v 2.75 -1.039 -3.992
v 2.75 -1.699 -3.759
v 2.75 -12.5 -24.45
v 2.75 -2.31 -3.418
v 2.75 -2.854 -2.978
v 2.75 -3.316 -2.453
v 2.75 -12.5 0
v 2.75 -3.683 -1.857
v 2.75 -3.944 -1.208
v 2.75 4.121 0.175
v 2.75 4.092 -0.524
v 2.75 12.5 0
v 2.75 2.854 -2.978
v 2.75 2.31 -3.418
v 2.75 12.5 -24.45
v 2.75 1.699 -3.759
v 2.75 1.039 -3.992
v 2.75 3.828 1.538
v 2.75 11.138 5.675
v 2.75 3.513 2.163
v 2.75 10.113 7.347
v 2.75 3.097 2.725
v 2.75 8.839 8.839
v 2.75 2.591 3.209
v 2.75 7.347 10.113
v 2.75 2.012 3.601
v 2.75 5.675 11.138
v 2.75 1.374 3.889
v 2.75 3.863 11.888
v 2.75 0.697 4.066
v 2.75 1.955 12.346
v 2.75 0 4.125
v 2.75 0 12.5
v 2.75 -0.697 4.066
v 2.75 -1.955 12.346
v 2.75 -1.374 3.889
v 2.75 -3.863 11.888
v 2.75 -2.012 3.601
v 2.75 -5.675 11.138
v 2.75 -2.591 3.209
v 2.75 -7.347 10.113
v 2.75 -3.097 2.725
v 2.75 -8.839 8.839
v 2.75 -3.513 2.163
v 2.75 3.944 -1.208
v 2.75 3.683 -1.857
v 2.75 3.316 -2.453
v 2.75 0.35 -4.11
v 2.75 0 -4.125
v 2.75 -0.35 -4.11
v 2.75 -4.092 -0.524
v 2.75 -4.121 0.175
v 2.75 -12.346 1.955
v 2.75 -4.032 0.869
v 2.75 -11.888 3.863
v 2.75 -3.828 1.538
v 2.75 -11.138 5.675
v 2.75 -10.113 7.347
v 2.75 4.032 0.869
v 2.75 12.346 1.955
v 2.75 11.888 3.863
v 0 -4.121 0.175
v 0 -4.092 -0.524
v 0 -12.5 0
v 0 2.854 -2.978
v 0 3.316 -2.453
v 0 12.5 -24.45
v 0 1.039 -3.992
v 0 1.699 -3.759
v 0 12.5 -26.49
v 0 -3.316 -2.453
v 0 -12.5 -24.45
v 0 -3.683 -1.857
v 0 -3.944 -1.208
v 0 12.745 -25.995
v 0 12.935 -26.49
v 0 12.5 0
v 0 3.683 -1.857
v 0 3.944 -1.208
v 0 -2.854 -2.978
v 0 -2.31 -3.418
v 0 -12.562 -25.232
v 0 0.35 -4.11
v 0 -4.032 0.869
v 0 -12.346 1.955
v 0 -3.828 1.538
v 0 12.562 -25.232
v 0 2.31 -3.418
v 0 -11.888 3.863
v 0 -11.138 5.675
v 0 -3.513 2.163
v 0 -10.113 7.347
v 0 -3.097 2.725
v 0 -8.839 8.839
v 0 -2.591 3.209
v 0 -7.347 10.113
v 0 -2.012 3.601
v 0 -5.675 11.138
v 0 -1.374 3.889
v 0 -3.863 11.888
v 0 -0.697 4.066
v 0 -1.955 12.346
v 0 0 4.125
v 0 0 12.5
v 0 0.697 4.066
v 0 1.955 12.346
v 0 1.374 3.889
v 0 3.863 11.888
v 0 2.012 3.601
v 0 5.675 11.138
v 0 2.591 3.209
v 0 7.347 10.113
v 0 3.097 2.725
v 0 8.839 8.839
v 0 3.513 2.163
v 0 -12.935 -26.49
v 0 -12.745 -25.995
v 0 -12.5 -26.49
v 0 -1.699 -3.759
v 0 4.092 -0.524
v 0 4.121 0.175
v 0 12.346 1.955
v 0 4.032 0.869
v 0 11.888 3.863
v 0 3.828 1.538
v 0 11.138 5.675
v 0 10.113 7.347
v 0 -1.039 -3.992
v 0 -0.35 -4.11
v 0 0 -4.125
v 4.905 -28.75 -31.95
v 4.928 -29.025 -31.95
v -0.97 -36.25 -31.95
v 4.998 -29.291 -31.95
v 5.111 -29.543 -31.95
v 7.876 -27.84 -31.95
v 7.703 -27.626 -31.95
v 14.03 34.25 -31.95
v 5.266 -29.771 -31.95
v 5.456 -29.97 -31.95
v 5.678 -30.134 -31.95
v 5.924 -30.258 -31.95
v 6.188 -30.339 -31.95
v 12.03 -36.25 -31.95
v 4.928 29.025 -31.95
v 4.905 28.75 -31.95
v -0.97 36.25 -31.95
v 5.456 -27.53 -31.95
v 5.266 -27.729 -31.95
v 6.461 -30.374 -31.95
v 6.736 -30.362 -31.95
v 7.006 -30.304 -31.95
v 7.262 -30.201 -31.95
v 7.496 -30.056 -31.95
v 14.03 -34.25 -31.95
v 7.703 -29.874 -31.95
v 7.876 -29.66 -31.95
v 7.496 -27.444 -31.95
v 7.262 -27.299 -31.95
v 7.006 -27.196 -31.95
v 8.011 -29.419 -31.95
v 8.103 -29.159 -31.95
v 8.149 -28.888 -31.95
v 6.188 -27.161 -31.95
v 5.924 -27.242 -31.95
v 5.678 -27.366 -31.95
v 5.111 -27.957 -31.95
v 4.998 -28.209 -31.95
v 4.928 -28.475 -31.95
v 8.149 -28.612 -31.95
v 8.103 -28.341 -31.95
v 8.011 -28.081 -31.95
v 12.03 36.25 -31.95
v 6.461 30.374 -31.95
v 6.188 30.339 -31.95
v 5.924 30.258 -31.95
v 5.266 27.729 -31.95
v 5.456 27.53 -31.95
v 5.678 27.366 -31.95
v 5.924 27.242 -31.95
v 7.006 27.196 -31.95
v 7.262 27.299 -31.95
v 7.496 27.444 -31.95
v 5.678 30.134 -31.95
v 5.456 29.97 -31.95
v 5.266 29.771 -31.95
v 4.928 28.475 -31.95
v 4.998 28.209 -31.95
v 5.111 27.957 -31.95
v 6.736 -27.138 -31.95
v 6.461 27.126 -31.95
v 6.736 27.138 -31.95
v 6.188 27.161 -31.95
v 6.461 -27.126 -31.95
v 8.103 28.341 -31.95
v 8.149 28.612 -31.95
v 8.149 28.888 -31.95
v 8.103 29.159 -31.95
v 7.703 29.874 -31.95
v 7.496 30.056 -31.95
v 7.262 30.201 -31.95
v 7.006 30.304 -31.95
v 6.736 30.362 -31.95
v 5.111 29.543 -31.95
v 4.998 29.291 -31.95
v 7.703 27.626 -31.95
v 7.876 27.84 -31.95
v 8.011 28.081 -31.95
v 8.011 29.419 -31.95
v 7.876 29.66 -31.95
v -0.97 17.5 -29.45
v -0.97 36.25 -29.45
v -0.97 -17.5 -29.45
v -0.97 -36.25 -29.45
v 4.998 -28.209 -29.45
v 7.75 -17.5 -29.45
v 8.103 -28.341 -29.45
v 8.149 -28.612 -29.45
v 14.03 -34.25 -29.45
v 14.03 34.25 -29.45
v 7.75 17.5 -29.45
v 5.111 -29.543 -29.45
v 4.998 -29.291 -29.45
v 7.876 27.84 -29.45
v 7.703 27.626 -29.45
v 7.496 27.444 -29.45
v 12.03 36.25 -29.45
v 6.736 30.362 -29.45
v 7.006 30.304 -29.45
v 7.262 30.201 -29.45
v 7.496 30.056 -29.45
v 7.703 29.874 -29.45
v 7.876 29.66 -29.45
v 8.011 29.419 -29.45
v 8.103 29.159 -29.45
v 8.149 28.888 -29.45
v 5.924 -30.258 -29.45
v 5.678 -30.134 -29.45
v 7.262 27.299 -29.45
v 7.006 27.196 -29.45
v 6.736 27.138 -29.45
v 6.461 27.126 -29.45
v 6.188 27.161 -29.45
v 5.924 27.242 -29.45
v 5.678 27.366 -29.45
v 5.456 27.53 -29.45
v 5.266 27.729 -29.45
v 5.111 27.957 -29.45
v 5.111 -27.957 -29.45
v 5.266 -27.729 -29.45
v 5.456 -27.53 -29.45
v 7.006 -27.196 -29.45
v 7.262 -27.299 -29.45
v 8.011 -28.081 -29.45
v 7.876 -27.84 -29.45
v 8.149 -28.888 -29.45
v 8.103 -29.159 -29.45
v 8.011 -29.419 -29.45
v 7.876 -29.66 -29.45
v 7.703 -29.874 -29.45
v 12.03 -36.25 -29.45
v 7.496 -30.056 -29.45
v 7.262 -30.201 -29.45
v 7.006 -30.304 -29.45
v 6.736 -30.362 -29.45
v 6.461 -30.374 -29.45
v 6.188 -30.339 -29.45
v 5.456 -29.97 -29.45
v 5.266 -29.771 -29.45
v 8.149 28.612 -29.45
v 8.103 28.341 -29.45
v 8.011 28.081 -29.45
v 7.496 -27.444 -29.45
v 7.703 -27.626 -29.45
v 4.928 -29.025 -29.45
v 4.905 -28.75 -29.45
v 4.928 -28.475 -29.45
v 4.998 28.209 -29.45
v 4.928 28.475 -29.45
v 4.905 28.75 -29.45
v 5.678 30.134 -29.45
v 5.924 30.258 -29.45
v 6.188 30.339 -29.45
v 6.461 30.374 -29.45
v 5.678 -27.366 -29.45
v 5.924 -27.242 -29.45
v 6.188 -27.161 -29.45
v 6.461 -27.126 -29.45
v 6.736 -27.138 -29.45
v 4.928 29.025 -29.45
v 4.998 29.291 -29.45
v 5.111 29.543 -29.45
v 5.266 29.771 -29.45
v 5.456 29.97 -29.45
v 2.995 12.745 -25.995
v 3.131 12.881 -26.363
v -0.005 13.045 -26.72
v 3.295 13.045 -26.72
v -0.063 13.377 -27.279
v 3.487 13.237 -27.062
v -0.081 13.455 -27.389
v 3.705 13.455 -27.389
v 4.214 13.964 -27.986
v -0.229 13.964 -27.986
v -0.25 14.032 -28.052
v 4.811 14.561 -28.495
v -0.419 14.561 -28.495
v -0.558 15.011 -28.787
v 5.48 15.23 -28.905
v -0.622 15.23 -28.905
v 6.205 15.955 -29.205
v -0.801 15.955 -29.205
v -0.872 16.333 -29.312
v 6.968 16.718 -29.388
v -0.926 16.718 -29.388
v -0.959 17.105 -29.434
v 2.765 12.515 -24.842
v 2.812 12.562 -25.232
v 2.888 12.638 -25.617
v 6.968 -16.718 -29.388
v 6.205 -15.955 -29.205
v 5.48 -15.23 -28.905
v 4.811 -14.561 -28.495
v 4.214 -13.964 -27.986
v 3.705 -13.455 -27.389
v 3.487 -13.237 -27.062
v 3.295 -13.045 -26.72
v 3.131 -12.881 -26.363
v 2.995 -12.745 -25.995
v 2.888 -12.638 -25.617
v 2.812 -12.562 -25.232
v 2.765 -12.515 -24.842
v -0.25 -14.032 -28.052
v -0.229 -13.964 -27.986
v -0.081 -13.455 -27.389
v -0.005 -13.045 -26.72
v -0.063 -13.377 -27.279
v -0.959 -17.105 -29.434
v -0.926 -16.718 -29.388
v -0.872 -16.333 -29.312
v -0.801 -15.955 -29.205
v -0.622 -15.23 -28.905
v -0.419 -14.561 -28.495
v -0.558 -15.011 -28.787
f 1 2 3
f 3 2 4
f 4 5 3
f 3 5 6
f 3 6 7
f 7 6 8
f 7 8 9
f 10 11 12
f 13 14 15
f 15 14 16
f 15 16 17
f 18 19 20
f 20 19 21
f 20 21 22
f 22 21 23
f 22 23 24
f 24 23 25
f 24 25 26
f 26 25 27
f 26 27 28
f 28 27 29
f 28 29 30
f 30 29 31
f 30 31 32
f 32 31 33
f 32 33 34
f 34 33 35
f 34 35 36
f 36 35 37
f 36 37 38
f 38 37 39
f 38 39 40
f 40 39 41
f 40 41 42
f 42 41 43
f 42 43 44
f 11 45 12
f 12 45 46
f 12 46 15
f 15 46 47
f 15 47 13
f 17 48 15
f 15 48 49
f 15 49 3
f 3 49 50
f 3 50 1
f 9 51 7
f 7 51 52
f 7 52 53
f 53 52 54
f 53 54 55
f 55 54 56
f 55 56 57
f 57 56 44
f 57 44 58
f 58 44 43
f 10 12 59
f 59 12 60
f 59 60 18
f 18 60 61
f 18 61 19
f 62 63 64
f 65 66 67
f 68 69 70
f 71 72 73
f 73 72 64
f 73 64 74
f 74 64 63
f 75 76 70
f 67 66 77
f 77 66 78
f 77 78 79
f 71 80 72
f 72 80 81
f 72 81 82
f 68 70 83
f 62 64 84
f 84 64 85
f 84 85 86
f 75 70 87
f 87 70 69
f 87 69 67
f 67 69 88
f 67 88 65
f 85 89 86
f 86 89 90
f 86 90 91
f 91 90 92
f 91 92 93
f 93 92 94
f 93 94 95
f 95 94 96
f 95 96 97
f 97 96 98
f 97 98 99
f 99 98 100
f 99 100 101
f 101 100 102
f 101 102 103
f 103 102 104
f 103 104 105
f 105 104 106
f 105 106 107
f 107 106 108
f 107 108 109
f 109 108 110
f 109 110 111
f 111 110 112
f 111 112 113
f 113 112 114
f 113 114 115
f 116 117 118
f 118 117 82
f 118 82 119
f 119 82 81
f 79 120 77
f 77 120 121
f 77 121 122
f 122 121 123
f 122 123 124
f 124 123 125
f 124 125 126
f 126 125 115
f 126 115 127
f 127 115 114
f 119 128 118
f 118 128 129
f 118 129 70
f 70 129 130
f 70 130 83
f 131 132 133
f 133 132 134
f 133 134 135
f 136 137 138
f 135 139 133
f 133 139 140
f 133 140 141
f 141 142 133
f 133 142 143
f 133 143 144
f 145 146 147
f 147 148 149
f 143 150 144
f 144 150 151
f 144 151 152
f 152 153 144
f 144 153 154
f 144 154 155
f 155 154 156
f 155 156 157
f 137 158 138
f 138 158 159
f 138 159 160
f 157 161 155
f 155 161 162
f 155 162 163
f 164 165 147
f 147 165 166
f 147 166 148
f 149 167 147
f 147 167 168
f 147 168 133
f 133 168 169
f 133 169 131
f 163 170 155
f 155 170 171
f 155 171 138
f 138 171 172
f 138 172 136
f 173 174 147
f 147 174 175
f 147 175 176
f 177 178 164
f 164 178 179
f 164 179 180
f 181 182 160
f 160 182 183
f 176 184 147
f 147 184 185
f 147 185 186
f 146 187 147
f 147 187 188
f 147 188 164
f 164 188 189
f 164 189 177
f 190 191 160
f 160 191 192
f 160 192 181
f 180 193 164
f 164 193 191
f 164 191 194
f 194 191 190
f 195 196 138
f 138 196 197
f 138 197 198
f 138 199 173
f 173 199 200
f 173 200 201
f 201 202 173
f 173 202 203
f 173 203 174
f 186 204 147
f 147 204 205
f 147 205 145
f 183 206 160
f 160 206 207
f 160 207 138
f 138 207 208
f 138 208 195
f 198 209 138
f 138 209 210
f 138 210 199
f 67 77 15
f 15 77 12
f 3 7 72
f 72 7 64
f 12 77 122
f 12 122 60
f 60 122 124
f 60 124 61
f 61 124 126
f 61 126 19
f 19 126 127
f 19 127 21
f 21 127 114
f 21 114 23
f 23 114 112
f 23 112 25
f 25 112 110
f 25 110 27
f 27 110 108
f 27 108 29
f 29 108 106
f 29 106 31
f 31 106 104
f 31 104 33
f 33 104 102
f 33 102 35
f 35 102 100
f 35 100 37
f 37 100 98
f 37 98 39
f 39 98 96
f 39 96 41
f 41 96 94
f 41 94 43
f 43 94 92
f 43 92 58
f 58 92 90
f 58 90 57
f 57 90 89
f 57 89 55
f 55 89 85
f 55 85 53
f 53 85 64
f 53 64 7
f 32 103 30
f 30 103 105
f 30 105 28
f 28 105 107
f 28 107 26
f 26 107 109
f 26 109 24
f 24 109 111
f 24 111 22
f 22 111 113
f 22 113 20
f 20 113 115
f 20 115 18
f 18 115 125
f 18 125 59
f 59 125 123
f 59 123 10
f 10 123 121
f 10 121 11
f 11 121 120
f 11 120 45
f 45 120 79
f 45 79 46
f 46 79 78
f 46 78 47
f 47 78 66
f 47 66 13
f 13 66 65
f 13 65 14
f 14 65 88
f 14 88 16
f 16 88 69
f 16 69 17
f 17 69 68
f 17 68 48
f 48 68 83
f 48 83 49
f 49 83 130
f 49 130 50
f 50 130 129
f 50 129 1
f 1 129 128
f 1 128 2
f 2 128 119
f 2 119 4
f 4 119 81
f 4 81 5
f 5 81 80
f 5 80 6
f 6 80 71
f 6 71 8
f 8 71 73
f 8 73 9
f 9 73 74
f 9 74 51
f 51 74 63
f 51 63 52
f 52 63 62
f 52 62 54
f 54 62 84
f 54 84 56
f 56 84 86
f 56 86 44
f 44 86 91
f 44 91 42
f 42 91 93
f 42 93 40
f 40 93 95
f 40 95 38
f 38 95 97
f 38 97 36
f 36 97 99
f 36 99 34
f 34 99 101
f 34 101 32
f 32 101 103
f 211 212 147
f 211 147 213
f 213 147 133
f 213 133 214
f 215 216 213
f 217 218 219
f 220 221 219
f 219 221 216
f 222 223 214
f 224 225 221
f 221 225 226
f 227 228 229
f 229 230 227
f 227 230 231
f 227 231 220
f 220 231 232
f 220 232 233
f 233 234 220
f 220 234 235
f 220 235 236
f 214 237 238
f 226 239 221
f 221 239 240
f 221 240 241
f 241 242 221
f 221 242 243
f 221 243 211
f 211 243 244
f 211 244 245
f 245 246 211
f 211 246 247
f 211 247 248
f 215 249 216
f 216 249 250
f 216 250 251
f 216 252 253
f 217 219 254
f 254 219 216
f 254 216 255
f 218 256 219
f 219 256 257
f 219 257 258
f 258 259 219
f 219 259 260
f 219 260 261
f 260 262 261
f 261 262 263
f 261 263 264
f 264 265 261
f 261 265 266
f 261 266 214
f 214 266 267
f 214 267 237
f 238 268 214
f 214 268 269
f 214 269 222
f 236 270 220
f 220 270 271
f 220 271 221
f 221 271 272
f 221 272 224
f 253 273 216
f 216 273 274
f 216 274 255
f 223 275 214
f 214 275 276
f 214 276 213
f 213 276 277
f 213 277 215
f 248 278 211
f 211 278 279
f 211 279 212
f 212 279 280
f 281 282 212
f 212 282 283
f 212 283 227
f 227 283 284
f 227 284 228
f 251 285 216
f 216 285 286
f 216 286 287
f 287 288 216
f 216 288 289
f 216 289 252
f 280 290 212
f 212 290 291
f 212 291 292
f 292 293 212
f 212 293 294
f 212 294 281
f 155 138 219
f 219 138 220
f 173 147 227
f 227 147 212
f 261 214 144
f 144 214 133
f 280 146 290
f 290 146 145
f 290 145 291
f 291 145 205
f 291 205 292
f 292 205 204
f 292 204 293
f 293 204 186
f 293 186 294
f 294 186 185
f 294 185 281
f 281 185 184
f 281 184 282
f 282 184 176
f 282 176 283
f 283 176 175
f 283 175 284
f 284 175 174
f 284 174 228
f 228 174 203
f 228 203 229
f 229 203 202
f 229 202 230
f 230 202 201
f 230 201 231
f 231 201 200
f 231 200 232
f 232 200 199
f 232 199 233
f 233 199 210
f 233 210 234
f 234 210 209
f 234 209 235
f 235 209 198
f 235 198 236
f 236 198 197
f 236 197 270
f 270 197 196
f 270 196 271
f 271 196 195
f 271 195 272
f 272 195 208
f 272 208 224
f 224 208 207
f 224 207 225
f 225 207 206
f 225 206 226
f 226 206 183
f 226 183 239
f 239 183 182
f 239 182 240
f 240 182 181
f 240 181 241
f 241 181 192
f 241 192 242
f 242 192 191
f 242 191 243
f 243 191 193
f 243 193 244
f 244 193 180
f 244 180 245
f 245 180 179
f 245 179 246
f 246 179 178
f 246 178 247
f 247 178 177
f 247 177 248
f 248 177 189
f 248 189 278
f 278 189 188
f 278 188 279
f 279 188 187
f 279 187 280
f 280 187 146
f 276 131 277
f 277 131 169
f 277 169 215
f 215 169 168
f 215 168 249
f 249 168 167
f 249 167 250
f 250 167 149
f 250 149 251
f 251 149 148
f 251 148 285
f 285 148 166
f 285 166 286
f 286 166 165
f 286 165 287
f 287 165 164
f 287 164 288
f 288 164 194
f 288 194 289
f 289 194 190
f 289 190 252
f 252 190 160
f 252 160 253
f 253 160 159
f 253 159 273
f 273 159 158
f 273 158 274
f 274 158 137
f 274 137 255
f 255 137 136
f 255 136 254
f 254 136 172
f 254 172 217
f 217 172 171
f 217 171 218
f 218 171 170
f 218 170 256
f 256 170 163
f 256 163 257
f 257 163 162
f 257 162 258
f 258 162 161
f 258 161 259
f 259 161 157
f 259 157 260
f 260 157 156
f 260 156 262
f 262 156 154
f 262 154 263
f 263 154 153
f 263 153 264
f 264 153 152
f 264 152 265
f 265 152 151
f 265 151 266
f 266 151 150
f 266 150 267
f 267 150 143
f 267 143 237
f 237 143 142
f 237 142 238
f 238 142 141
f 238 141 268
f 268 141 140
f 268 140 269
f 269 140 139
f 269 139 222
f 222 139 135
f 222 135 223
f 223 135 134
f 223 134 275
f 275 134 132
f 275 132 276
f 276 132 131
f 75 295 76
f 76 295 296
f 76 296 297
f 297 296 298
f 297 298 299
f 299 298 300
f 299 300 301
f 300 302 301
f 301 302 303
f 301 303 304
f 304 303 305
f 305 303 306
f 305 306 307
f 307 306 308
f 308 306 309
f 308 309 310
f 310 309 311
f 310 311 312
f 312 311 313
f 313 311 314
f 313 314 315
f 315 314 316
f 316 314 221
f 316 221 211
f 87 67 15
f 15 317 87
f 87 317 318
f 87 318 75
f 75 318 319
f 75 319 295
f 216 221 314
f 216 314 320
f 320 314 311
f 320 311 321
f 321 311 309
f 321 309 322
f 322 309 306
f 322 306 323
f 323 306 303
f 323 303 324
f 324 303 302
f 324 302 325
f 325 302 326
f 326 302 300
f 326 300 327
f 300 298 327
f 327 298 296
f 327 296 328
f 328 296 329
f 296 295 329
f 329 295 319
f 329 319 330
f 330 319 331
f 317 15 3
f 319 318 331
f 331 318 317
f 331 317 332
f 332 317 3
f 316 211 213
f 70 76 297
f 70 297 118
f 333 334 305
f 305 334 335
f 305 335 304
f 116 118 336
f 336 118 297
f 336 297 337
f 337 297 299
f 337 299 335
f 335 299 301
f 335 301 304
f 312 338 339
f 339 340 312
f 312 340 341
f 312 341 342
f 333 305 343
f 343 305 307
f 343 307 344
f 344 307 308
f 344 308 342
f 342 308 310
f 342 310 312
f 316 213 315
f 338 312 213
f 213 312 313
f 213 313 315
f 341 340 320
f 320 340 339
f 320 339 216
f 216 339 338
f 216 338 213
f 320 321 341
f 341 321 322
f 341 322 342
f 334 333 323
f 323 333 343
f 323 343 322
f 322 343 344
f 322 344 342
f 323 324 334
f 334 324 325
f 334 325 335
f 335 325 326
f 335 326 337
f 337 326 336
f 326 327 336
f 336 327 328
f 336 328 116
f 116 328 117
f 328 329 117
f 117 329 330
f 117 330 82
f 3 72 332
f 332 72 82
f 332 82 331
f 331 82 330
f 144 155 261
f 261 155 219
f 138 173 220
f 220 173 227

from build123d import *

# Parameters (mm, degrees)
SKETCH1_R               = 4.125
BOSS_EXTRUDE1_DEPTH     = 2.75
BOSS_EXTRUDE4_DEPTH     = 2.5
CUT_EXTRUDE2_REACH      = 80.314
SKETCH7_W               = 7
SKETCH7_H               = 16.5
SKETCH7_W_2             = 16
SKETCH7_H_2             = 8
CUT_EXTRUDE3_REACH      = 82.041
SKETCH9_W               = 2.75
SKETCH9_H               = 22.388822383
SKETCH8_W               = 2.75
SKETCH8_H               = 27.825
BOSS_EXTRUDE5_DEPTH     = 12.5
FILLET2_R               = 1
FILLET3_R               = 4
CUT_EXTRUDE4_DEPTH      = 74.103052287
CUT_EXTRUDE4_DEPTH_BACK = 74.103052287
SKETCH10_W              = 78.235731334
SKETCH10_H              = 6.290045588
SKETCH11_W              = 15
SKETCH11_H              = 2.5
BOSS_EXTRUDE6_DEPTH     = 12.5
BOSS_EXTRUDE7_DEPTH     = 2.5
SKETCH14_R              = 1.625
CUT_EXTRUDE5_DEPTH      = 2.5
FILLET4_R               = 5


with BuildPart() as part:
    # Sketch1 → Boss-Extrude1 (new body)
    with BuildSketch(Plane(origin=(0, 0, 0), x_dir=(0, 0, -1), z_dir=(1, 0, 0))):
        with BuildLine():
            Line((0, 12.5), (34.45, 12.5))
            Line((34.45, 12.5), (34.45, -12.5))
            Line((34.45, -12.5), (0, -12.5))
            ThreePointArc((0, -12.5), (-12.5, 0), (0, 12.5))
        make_face()
        Circle(SKETCH1_R, mode=Mode.SUBTRACT)
    extrude(amount=BOSS_EXTRUDE1_DEPTH)

    # Sketch6 → Boss-Extrude4 (add)
    with BuildSketch(Plane(origin=(0, 0, -34.45), x_dir=(-1, 0, 0), z_dir=(0, 0, -1))):
        Polygon((-8.812505246, 36.25), (53.321583376, 36.25), (53.321583376, -36.25), (6.25, -36.25), (-19.178416624, -36.25), (-19.178416624, 36.25), align=None)
    extrude(amount=-BOSS_EXTRUDE4_DEPTH)

    # Sketch7 → Cut-Extrude2 (cut, up to next)
    with BuildSketch(Plane.XY.offset(-31.95), mode=Mode.PRIVATE) as cut_extrude2_sk1:
        with Locations((-1.711858899, -11.632438111)):
            Rectangle(SKETCH7_W, SKETCH7_H)
    cut_extrude2_tool1 = extrude(cut_extrude2_sk1.sketch, amount=-CUT_EXTRUDE2_REACH, mode=Mode.PRIVATE) & part.part
    # Sketch7 → Cut-Extrude2 (cut, up to next)
    with BuildSketch(Plane.XY.offset(-31.95), mode=Mode.PRIVATE) as cut_extrude2_sk2:
        with Locations((-16.5, 0)):
            Rectangle(SKETCH7_W_2, SKETCH7_H_2)
    cut_extrude2_tool2 = extrude(cut_extrude2_sk2.sketch, amount=-CUT_EXTRUDE2_REACH, mode=Mode.PRIVATE) & part.part
    add(cut_extrude2_tool1.solids().sort_by_distance((-1.711859, -11.632438, -31.95))[0], mode=Mode.SUBTRACT)
    add(cut_extrude2_tool2.solids().sort_by_distance((-16.5, 0, -31.95))[0], mode=Mode.SUBTRACT)

    # Sketch9 → Cut-Extrude3 (cut, up to next)
    with BuildSketch(Plane.XZ.offset(12.5), mode=Mode.PRIVATE) as cut_extrude3_sk1:
        with Locations((1.375, -20.755588809)):
            Rectangle(SKETCH9_W, SKETCH9_H)
    cut_extrude3_tool1 = extrude(cut_extrude3_sk1.sketch, amount=-CUT_EXTRUDE3_REACH, mode=Mode.PRIVATE) & part.part
    add(cut_extrude3_tool1.solids().sort_by_distance((1.375, -12.5, -20.755589))[0], mode=Mode.SUBTRACT)


with BuildPart() as cut_extrude3_piece_1:
    # of the separate pieces the step leaves, piece 1, a body of its own (cut_extrude3_pieces)
    add(part.part.solids().sort_by_distance((-53.321583376, 36.25, -31.95))[0])



with BuildPart() as cut_extrude3_piece_2:
    # of the separate pieces the step leaves, piece 2, a body of its own (cut_extrude3_pieces)
    add(part.part.solids().sort_by_distance((0, 12.5, 0))[0])


with BuildPart() as cut_extrude3_piece_1_1:
    add(cut_extrude3_piece_1.part)

    add(cut_extrude3_piece_2.part)  # Boss-Extrude5 merges Cut-Extrude3 piece 2
    # Sketch8 → Boss-Extrude5 (add, symmetric)
    with BuildSketch(Plane(origin=(0, 0, 0), x_dir=(1, 0, 0), z_dir=(0, 1, 0))):
        with Locations((1.375, 18.0375)):
            Rectangle(SKETCH8_W, SKETCH8_H)
    extrude(amount=BOSS_EXTRUDE5_DEPTH, both=True)

    # Fillet2
    fillet2_edges = [cut_extrude3_piece_1_1.edges().sort_by_distance(p)[0] for p in [
        (-8.5, 4, -33.2),
        (-8.5, -4, -33.2),
        (-24.5, -4, -33.2),
        (-24.5, 4, -33.2),
        (-5.211858899, -19.882438111, -33.2),
        (-5.211858899, -3.382438111, -33.2),
        (1.788141101, -3.382438111, -33.2),
        (1.788141101, -19.882438111, -33.2),
    ]]
    fillet(fillet2_edges, radius=FILLET2_R)

    # Fillet3
    fillet3_edges = [cut_extrude3_piece_1_1.edges().sort_by_distance(p)[0] for p in [
        (19.178416624, 36.25, -33.2),
        (-53.321583376, 36.25, -33.2),
        (-53.321583376, -36.25, -33.2),
        (19.178416624, -36.25, -33.2),
    ]]
    fillet(fillet3_edges, radius=FILLET3_R)

    # Sketch10 → Cut-Extrude4 (cut, two sides: drawn at the far end of the back side and taken through both)
    with BuildSketch(Plane(origin=(0, 0, 0), x_dir=(1, 0, 0), z_dir=(0, 1, 0)).offset(-CUT_EXTRUDE4_DEPTH_BACK)):
        with Locations((-17.391929865, 35.095022794)):
            Rectangle(SKETCH10_W, SKETCH10_H)
    extrude(amount=CUT_EXTRUDE4_DEPTH + CUT_EXTRUDE4_DEPTH_BACK, mode=Mode.SUBTRACT)

    # Sketch11 → Boss-Extrude6 (add, symmetric)
    with BuildSketch(Plane(origin=(0, 0, 0), x_dir=(1, 0, 0), z_dir=(0, 1, 0))):
        with Locations((6.53, 30.7)):
            Rectangle(SKETCH11_W, SKETCH11_H)
    boss_extrude6 = extrude(amount=BOSS_EXTRUDE6_DEPTH, both=True)

    # Sketch13 → Boss-Extrude7 (add)
    with BuildSketch(Plane(origin=(0, 0, -31.95), x_dir=(-1, 0, 0), z_dir=(0, 0, -1))):
        with BuildLine():
            Line((-14.03, 12.5), (0.97, 12.5))
            Line((0.97, 12.5), (0.97, 36.25))
            Line((0.97, 36.25), (-10.03, 36.25))
            ThreePointArc((-10.03, 36.25), (-12.858427125, 35.078427125), (-14.03, 32.25))
            Line((-14.03, 32.25), (-14.03, 12.5))
        make_face()
    boss_extrude7 = extrude(amount=-BOSS_EXTRUDE7_DEPTH)

    # Mirror1: Boss-Extrude6, Boss-Extrude7 across plane
    add(boss_extrude6.mirror(Plane.ZX))
    add(boss_extrude7.mirror(Plane.ZX))

    # Sketch14 → Cut-Extrude5 (cut)
    with BuildSketch(Plane(origin=(0, 0, -31.95), x_dir=(-1, 0, 0), z_dir=(0, 0, -1))):
        with Locations((-6.53, 28.75)):
            Circle(SKETCH14_R)
    cut_extrude5 = extrude(amount=-CUT_EXTRUDE5_DEPTH, mode=Mode.SUBTRACT)

    # Mirror2: Cut-Extrude5 across plane
    add(cut_extrude5.mirror(Plane.ZX), mode=Mode.SUBTRACT)

    # Fillet4
    # the kernel refuses this fillet: 5 mm, written as the material it adds along each edge
    with BuildSketch(Plane(origin=(2.75, -12.5, -29.45), x_dir=(1, 0, 0), z_dir=(0, 1, 0))) as fillet4_piece_1:
        with BuildLine():
            CenterArc((FILLET4_R, -FILLET4_R), FILLET4_R, 90, 90)
            Line((0, -FILLET4_R), (-FILLET4_R * 0.02, -FILLET4_R))
            Line((-FILLET4_R * 0.02, -FILLET4_R), (-FILLET4_R * 0.02, FILLET4_R * 0.02))
            Line((-FILLET4_R * 0.02, FILLET4_R * 0.02), (FILLET4_R, FILLET4_R * 0.02))
            Line((FILLET4_R, FILLET4_R * 0.02), (FILLET4_R, 0))
        make_face()
    extrude(amount=25)
    with BuildSketch(Plane(origin=(0, -12.5, -29.45), x_dir=(-1, 0, 0), z_dir=(0, 1, 0))) as fillet4_piece_2:
        with BuildLine():
            CenterArc((5, 2.959577673), FILLET4_R, 180, 36.293058493)
            Line((0, 2.959577673), (-0.1, 2.959577673))
            Line((-0.1, 2.959577673), (-0.1, 0))
            Line((-0.1, 0), (0, -0.1))
            ThreePointArc((0, -0.1), (0.485, -0.1), (0.8894, -0.059191553))
            Line((0.8894, -0.059191553), (0.97, 0))
        make_face()
    extrude(amount=25)
    with BuildSketch(Plane(origin=(2.75, 12.5, -29.45), x_dir=(0, 0, 1), z_dir=(-1, 0, 0)), Plane(origin=(2.75, -12.5, -29.45), x_dir=(0, -1, 0), z_dir=(-1, 0, 0))) as fillet4_piece_3:
        with BuildLine():
            CenterArc((FILLET4_R, FILLET4_R), FILLET4_R, 180, 90)
            Line((0, FILLET4_R), (-FILLET4_R * 0.02, FILLET4_R))
            Line((-FILLET4_R * 0.02, FILLET4_R), (-FILLET4_R * 0.02, -FILLET4_R * 0.02))
            Line((-FILLET4_R * 0.02, -FILLET4_R * 0.02), (FILLET4_R, -FILLET4_R * 0.02))
            Line((FILLET4_R, -FILLET4_R * 0.02), (FILLET4_R, 0))
        make_face()
    extrude(amount=2.75)
    with BuildSketch(Plane(origin=(2.75, -25, -29.45), x_dir=(1, 0, 0), z_dir=(0, 1, 0))) as fillet4_piece_4a_section:
        with BuildLine():
            CenterArc((FILLET4_R, -FILLET4_R), FILLET4_R, 90, 90)
            Line((0, -FILLET4_R), (-FILLET4_R * 0.02, -FILLET4_R))
            Line((-FILLET4_R * 0.02, -FILLET4_R), (-FILLET4_R * 0.02, FILLET4_R * 0.02))
            Line((-FILLET4_R * 0.02, FILLET4_R * 0.02), (FILLET4_R, FILLET4_R * 0.02))
            Line((FILLET4_R, FILLET4_R * 0.02), (FILLET4_R, 0))
        make_face()
    fillet4_piece_4a = extrude(amount=37.5, mode=Mode.PRIVATE)
    fillet4_piece_4a = split(fillet4_piece_4a, bisect_by=Plane(origin=(3.881975571, -12.5, -28.318024429), z_dir=(0, -1, 0)), keep=Keep.TOP, mode=Mode.PRIVATE)
    with BuildSketch(Plane(origin=(15.25, -12.5, -29.45), x_dir=(0, -1, 0), z_dir=(-1, 0, 0))) as fillet4_piece_4b_section:
        with BuildLine():
            CenterArc((FILLET4_R, FILLET4_R), FILLET4_R, 180, 90)
            Line((0, FILLET4_R), (-FILLET4_R * 0.02, FILLET4_R))
            Line((-FILLET4_R * 0.02, FILLET4_R), (-FILLET4_R * 0.02, -FILLET4_R * 0.02))
            Line((-FILLET4_R * 0.02, -FILLET4_R * 0.02), (FILLET4_R, -FILLET4_R * 0.02))
            Line((FILLET4_R, -FILLET4_R * 0.02), (FILLET4_R, 0))
        make_face()
    fillet4_piece_4b = extrude(amount=15.25, mode=Mode.PRIVATE)
    fillet4_piece_4b = split(fillet4_piece_4b, bisect_by=Plane(origin=(14.03, -13.631975571, -28.318024429), z_dir=(-1, 0, 0)), keep=Keep.TOP, mode=Mode.PRIVATE)
    fillet4_piece_4b = split(fillet4_piece_4b, bisect_by=Plane(origin=(2.75, -13.631975571, -28.318024429), z_dir=(1, 0, 0)), keep=Keep.TOP, mode=Mode.PRIVATE)
    fillet4_piece_4 = fillet4_piece_4a & fillet4_piece_4b
    add(fillet4_piece_4)
    with BuildSketch(Plane(origin=(15.25, 12.5, -29.45), x_dir=(0, 0, 1), z_dir=(-1, 0, 0))) as fillet4_piece_5a_section:
        with BuildLine():
            CenterArc((FILLET4_R, FILLET4_R), FILLET4_R, 180, 90)
            Line((0, FILLET4_R), (-FILLET4_R * 0.02, FILLET4_R))
            Line((-FILLET4_R * 0.02, FILLET4_R), (-FILLET4_R * 0.02, -FILLET4_R * 0.02))
            Line((-FILLET4_R * 0.02, -FILLET4_R * 0.02), (FILLET4_R, -FILLET4_R * 0.02))
            Line((FILLET4_R, -FILLET4_R * 0.02), (FILLET4_R, 0))
        make_face()
    fillet4_piece_5a = extrude(amount=15.25, mode=Mode.PRIVATE)
    fillet4_piece_5a = split(fillet4_piece_5a, bisect_by=Plane(origin=(2.75, 13.631975571, -28.318024429), z_dir=(1, 0, 0)), keep=Keep.TOP, mode=Mode.PRIVATE)
    fillet4_piece_5a = split(fillet4_piece_5a, bisect_by=Plane(origin=(14.03, 13.631975571, -28.318024429), z_dir=(-1, 0, 0)), keep=Keep.TOP, mode=Mode.PRIVATE)
    with BuildSketch(Plane(origin=(2.75, -12.5, -29.45), x_dir=(1, 0, 0), z_dir=(0, 1, 0))) as fillet4_piece_5b_section:
        with BuildLine():
            CenterArc((FILLET4_R, -FILLET4_R), FILLET4_R, 90, 90)
            Line((0, -FILLET4_R), (-FILLET4_R * 0.02, -FILLET4_R))
            Line((-FILLET4_R * 0.02, -FILLET4_R), (-FILLET4_R * 0.02, FILLET4_R * 0.02))
            Line((-FILLET4_R * 0.02, FILLET4_R * 0.02), (FILLET4_R, FILLET4_R * 0.02))
            Line((FILLET4_R, FILLET4_R * 0.02), (FILLET4_R, 0))
        make_face()
    fillet4_piece_5b = extrude(amount=37.5, mode=Mode.PRIVATE)
    fillet4_piece_5b = split(fillet4_piece_5b, bisect_by=Plane(origin=(3.881975571, 12.5, -28.318024429), z_dir=(0, 1, 0)), keep=Keep.TOP, mode=Mode.PRIVATE)
    fillet4_piece_5 = fillet4_piece_5a & fillet4_piece_5b
    add(fillet4_piece_5)
    with BuildSketch(Plane(origin=(2.75, -12.5, -29.45), x_dir=(0, -1, 0), z_dir=(-1, 0, 0))) as fillet4_piece_6a_section:
        with BuildLine():
            CenterArc((FILLET4_R, FILLET4_R), FILLET4_R, 180, 90)
            Line((0, FILLET4_R), (-FILLET4_R * 0.02, FILLET4_R))
            Line((-FILLET4_R * 0.02, FILLET4_R), (-FILLET4_R * 0.02, -FILLET4_R * 0.02))
            Line((-FILLET4_R * 0.02, -FILLET4_R * 0.02), (FILLET4_R, -FILLET4_R * 0.02))
            Line((FILLET4_R, -FILLET4_R * 0.02), (FILLET4_R, 0))
        make_face()
    fillet4_piece_6a = extrude(amount=15.25, mode=Mode.PRIVATE)
    fillet4_piece_6a = split(fillet4_piece_6a, bisect_by=Plane(origin=(-0.97, -13.631975571, -28.318024429), z_dir=(1, 0, 0)), keep=Keep.TOP, mode=Mode.PRIVATE)
    fillet4_piece_6a = split(fillet4_piece_6a, bisect_by=Plane(origin=(0, -13.631975571, -28.318024429), z_dir=(-1, 0, 0)), keep=Keep.TOP, mode=Mode.PRIVATE)
    with BuildSketch(Plane(origin=(0, -19.898944181, -29.45), x_dir=(-1, 0, 0), z_dir=(0, 1, 0))) as fillet4_piece_6b_section:
        with BuildLine():
            CenterArc((5, 2.959577673), FILLET4_R, 180, 36.293058493)
            Line((0, 2.959577673), (-0.1, 2.959577673))
            Line((-0.1, 2.959577673), (-0.1, 0))
            Line((-0.1, 0), (0, -0.1))
            ThreePointArc((0, -0.1), (0.485, -0.1), (0.8894, -0.059191553))
            Line((0.8894, -0.059191553), (0.97, 0))
        make_face()
    fillet4_piece_6b = extrude(amount=32.398944181, mode=Mode.PRIVATE)
    fillet4_piece_6b = split(fillet4_piece_6b, bisect_by=Plane(origin=(-0.217435867, -12.5, -28.607978011), z_dir=(0, -1, 0)), keep=Keep.TOP, mode=Mode.PRIVATE)
    fillet4_piece_6 = fillet4_piece_6a & fillet4_piece_6b
    add(fillet4_piece_6)
    with BuildSketch(Plane(origin=(2.75, 12.5, -29.45), x_dir=(0, 0, 1), z_dir=(-1, 0, 0))) as fillet4_piece_7a_section:
        with BuildLine():
            CenterArc((FILLET4_R, FILLET4_R), FILLET4_R, 180, 90)
            Line((0, FILLET4_R), (-FILLET4_R * 0.02, FILLET4_R))
            Line((-FILLET4_R * 0.02, FILLET4_R), (-FILLET4_R * 0.02, -FILLET4_R * 0.02))
            Line((-FILLET4_R * 0.02, -FILLET4_R * 0.02), (FILLET4_R, -FILLET4_R * 0.02))
            Line((FILLET4_R, -FILLET4_R * 0.02), (FILLET4_R, 0))
        make_face()
    fillet4_piece_7a = extrude(amount=15.25, mode=Mode.PRIVATE)
    fillet4_piece_7a = split(fillet4_piece_7a, bisect_by=Plane(origin=(0, 13.631975571, -28.318024429), z_dir=(-1, 0, 0)), keep=Keep.TOP, mode=Mode.PRIVATE)
    fillet4_piece_7a = split(fillet4_piece_7a, bisect_by=Plane(origin=(-0.97, 13.631975571, -28.318024429), z_dir=(1, 0, 0)), keep=Keep.TOP, mode=Mode.PRIVATE)
    with BuildSketch(Plane(origin=(0, -12.5, -29.45), x_dir=(-1, 0, 0), z_dir=(0, 1, 0))) as fillet4_piece_7b_section:
        with BuildLine():
            CenterArc((5, 2.959577673), FILLET4_R, 180, 36.293058493)
            Line((0, 2.959577673), (-0.1, 2.959577673))
            Line((-0.1, 2.959577673), (-0.1, 0))
            Line((-0.1, 0), (0, -0.1))
            ThreePointArc((0, -0.1), (0.485, -0.1), (0.8894, -0.059191553))
            Line((0.8894, -0.059191553), (0.97, 0))
        make_face()
    fillet4_piece_7b = extrude(amount=32.398944181, mode=Mode.PRIVATE)
    fillet4_piece_7b = split(fillet4_piece_7b, bisect_by=Plane(origin=(-0.217435867, 12.5, -28.607978011), z_dir=(0, 1, 0)), keep=Keep.TOP, mode=Mode.PRIVATE)
    fillet4_piece_7 = fillet4_piece_7a & fillet4_piece_7b
    add(fillet4_piece_7)


solid = cut_extrude3_piece_1_1.part
